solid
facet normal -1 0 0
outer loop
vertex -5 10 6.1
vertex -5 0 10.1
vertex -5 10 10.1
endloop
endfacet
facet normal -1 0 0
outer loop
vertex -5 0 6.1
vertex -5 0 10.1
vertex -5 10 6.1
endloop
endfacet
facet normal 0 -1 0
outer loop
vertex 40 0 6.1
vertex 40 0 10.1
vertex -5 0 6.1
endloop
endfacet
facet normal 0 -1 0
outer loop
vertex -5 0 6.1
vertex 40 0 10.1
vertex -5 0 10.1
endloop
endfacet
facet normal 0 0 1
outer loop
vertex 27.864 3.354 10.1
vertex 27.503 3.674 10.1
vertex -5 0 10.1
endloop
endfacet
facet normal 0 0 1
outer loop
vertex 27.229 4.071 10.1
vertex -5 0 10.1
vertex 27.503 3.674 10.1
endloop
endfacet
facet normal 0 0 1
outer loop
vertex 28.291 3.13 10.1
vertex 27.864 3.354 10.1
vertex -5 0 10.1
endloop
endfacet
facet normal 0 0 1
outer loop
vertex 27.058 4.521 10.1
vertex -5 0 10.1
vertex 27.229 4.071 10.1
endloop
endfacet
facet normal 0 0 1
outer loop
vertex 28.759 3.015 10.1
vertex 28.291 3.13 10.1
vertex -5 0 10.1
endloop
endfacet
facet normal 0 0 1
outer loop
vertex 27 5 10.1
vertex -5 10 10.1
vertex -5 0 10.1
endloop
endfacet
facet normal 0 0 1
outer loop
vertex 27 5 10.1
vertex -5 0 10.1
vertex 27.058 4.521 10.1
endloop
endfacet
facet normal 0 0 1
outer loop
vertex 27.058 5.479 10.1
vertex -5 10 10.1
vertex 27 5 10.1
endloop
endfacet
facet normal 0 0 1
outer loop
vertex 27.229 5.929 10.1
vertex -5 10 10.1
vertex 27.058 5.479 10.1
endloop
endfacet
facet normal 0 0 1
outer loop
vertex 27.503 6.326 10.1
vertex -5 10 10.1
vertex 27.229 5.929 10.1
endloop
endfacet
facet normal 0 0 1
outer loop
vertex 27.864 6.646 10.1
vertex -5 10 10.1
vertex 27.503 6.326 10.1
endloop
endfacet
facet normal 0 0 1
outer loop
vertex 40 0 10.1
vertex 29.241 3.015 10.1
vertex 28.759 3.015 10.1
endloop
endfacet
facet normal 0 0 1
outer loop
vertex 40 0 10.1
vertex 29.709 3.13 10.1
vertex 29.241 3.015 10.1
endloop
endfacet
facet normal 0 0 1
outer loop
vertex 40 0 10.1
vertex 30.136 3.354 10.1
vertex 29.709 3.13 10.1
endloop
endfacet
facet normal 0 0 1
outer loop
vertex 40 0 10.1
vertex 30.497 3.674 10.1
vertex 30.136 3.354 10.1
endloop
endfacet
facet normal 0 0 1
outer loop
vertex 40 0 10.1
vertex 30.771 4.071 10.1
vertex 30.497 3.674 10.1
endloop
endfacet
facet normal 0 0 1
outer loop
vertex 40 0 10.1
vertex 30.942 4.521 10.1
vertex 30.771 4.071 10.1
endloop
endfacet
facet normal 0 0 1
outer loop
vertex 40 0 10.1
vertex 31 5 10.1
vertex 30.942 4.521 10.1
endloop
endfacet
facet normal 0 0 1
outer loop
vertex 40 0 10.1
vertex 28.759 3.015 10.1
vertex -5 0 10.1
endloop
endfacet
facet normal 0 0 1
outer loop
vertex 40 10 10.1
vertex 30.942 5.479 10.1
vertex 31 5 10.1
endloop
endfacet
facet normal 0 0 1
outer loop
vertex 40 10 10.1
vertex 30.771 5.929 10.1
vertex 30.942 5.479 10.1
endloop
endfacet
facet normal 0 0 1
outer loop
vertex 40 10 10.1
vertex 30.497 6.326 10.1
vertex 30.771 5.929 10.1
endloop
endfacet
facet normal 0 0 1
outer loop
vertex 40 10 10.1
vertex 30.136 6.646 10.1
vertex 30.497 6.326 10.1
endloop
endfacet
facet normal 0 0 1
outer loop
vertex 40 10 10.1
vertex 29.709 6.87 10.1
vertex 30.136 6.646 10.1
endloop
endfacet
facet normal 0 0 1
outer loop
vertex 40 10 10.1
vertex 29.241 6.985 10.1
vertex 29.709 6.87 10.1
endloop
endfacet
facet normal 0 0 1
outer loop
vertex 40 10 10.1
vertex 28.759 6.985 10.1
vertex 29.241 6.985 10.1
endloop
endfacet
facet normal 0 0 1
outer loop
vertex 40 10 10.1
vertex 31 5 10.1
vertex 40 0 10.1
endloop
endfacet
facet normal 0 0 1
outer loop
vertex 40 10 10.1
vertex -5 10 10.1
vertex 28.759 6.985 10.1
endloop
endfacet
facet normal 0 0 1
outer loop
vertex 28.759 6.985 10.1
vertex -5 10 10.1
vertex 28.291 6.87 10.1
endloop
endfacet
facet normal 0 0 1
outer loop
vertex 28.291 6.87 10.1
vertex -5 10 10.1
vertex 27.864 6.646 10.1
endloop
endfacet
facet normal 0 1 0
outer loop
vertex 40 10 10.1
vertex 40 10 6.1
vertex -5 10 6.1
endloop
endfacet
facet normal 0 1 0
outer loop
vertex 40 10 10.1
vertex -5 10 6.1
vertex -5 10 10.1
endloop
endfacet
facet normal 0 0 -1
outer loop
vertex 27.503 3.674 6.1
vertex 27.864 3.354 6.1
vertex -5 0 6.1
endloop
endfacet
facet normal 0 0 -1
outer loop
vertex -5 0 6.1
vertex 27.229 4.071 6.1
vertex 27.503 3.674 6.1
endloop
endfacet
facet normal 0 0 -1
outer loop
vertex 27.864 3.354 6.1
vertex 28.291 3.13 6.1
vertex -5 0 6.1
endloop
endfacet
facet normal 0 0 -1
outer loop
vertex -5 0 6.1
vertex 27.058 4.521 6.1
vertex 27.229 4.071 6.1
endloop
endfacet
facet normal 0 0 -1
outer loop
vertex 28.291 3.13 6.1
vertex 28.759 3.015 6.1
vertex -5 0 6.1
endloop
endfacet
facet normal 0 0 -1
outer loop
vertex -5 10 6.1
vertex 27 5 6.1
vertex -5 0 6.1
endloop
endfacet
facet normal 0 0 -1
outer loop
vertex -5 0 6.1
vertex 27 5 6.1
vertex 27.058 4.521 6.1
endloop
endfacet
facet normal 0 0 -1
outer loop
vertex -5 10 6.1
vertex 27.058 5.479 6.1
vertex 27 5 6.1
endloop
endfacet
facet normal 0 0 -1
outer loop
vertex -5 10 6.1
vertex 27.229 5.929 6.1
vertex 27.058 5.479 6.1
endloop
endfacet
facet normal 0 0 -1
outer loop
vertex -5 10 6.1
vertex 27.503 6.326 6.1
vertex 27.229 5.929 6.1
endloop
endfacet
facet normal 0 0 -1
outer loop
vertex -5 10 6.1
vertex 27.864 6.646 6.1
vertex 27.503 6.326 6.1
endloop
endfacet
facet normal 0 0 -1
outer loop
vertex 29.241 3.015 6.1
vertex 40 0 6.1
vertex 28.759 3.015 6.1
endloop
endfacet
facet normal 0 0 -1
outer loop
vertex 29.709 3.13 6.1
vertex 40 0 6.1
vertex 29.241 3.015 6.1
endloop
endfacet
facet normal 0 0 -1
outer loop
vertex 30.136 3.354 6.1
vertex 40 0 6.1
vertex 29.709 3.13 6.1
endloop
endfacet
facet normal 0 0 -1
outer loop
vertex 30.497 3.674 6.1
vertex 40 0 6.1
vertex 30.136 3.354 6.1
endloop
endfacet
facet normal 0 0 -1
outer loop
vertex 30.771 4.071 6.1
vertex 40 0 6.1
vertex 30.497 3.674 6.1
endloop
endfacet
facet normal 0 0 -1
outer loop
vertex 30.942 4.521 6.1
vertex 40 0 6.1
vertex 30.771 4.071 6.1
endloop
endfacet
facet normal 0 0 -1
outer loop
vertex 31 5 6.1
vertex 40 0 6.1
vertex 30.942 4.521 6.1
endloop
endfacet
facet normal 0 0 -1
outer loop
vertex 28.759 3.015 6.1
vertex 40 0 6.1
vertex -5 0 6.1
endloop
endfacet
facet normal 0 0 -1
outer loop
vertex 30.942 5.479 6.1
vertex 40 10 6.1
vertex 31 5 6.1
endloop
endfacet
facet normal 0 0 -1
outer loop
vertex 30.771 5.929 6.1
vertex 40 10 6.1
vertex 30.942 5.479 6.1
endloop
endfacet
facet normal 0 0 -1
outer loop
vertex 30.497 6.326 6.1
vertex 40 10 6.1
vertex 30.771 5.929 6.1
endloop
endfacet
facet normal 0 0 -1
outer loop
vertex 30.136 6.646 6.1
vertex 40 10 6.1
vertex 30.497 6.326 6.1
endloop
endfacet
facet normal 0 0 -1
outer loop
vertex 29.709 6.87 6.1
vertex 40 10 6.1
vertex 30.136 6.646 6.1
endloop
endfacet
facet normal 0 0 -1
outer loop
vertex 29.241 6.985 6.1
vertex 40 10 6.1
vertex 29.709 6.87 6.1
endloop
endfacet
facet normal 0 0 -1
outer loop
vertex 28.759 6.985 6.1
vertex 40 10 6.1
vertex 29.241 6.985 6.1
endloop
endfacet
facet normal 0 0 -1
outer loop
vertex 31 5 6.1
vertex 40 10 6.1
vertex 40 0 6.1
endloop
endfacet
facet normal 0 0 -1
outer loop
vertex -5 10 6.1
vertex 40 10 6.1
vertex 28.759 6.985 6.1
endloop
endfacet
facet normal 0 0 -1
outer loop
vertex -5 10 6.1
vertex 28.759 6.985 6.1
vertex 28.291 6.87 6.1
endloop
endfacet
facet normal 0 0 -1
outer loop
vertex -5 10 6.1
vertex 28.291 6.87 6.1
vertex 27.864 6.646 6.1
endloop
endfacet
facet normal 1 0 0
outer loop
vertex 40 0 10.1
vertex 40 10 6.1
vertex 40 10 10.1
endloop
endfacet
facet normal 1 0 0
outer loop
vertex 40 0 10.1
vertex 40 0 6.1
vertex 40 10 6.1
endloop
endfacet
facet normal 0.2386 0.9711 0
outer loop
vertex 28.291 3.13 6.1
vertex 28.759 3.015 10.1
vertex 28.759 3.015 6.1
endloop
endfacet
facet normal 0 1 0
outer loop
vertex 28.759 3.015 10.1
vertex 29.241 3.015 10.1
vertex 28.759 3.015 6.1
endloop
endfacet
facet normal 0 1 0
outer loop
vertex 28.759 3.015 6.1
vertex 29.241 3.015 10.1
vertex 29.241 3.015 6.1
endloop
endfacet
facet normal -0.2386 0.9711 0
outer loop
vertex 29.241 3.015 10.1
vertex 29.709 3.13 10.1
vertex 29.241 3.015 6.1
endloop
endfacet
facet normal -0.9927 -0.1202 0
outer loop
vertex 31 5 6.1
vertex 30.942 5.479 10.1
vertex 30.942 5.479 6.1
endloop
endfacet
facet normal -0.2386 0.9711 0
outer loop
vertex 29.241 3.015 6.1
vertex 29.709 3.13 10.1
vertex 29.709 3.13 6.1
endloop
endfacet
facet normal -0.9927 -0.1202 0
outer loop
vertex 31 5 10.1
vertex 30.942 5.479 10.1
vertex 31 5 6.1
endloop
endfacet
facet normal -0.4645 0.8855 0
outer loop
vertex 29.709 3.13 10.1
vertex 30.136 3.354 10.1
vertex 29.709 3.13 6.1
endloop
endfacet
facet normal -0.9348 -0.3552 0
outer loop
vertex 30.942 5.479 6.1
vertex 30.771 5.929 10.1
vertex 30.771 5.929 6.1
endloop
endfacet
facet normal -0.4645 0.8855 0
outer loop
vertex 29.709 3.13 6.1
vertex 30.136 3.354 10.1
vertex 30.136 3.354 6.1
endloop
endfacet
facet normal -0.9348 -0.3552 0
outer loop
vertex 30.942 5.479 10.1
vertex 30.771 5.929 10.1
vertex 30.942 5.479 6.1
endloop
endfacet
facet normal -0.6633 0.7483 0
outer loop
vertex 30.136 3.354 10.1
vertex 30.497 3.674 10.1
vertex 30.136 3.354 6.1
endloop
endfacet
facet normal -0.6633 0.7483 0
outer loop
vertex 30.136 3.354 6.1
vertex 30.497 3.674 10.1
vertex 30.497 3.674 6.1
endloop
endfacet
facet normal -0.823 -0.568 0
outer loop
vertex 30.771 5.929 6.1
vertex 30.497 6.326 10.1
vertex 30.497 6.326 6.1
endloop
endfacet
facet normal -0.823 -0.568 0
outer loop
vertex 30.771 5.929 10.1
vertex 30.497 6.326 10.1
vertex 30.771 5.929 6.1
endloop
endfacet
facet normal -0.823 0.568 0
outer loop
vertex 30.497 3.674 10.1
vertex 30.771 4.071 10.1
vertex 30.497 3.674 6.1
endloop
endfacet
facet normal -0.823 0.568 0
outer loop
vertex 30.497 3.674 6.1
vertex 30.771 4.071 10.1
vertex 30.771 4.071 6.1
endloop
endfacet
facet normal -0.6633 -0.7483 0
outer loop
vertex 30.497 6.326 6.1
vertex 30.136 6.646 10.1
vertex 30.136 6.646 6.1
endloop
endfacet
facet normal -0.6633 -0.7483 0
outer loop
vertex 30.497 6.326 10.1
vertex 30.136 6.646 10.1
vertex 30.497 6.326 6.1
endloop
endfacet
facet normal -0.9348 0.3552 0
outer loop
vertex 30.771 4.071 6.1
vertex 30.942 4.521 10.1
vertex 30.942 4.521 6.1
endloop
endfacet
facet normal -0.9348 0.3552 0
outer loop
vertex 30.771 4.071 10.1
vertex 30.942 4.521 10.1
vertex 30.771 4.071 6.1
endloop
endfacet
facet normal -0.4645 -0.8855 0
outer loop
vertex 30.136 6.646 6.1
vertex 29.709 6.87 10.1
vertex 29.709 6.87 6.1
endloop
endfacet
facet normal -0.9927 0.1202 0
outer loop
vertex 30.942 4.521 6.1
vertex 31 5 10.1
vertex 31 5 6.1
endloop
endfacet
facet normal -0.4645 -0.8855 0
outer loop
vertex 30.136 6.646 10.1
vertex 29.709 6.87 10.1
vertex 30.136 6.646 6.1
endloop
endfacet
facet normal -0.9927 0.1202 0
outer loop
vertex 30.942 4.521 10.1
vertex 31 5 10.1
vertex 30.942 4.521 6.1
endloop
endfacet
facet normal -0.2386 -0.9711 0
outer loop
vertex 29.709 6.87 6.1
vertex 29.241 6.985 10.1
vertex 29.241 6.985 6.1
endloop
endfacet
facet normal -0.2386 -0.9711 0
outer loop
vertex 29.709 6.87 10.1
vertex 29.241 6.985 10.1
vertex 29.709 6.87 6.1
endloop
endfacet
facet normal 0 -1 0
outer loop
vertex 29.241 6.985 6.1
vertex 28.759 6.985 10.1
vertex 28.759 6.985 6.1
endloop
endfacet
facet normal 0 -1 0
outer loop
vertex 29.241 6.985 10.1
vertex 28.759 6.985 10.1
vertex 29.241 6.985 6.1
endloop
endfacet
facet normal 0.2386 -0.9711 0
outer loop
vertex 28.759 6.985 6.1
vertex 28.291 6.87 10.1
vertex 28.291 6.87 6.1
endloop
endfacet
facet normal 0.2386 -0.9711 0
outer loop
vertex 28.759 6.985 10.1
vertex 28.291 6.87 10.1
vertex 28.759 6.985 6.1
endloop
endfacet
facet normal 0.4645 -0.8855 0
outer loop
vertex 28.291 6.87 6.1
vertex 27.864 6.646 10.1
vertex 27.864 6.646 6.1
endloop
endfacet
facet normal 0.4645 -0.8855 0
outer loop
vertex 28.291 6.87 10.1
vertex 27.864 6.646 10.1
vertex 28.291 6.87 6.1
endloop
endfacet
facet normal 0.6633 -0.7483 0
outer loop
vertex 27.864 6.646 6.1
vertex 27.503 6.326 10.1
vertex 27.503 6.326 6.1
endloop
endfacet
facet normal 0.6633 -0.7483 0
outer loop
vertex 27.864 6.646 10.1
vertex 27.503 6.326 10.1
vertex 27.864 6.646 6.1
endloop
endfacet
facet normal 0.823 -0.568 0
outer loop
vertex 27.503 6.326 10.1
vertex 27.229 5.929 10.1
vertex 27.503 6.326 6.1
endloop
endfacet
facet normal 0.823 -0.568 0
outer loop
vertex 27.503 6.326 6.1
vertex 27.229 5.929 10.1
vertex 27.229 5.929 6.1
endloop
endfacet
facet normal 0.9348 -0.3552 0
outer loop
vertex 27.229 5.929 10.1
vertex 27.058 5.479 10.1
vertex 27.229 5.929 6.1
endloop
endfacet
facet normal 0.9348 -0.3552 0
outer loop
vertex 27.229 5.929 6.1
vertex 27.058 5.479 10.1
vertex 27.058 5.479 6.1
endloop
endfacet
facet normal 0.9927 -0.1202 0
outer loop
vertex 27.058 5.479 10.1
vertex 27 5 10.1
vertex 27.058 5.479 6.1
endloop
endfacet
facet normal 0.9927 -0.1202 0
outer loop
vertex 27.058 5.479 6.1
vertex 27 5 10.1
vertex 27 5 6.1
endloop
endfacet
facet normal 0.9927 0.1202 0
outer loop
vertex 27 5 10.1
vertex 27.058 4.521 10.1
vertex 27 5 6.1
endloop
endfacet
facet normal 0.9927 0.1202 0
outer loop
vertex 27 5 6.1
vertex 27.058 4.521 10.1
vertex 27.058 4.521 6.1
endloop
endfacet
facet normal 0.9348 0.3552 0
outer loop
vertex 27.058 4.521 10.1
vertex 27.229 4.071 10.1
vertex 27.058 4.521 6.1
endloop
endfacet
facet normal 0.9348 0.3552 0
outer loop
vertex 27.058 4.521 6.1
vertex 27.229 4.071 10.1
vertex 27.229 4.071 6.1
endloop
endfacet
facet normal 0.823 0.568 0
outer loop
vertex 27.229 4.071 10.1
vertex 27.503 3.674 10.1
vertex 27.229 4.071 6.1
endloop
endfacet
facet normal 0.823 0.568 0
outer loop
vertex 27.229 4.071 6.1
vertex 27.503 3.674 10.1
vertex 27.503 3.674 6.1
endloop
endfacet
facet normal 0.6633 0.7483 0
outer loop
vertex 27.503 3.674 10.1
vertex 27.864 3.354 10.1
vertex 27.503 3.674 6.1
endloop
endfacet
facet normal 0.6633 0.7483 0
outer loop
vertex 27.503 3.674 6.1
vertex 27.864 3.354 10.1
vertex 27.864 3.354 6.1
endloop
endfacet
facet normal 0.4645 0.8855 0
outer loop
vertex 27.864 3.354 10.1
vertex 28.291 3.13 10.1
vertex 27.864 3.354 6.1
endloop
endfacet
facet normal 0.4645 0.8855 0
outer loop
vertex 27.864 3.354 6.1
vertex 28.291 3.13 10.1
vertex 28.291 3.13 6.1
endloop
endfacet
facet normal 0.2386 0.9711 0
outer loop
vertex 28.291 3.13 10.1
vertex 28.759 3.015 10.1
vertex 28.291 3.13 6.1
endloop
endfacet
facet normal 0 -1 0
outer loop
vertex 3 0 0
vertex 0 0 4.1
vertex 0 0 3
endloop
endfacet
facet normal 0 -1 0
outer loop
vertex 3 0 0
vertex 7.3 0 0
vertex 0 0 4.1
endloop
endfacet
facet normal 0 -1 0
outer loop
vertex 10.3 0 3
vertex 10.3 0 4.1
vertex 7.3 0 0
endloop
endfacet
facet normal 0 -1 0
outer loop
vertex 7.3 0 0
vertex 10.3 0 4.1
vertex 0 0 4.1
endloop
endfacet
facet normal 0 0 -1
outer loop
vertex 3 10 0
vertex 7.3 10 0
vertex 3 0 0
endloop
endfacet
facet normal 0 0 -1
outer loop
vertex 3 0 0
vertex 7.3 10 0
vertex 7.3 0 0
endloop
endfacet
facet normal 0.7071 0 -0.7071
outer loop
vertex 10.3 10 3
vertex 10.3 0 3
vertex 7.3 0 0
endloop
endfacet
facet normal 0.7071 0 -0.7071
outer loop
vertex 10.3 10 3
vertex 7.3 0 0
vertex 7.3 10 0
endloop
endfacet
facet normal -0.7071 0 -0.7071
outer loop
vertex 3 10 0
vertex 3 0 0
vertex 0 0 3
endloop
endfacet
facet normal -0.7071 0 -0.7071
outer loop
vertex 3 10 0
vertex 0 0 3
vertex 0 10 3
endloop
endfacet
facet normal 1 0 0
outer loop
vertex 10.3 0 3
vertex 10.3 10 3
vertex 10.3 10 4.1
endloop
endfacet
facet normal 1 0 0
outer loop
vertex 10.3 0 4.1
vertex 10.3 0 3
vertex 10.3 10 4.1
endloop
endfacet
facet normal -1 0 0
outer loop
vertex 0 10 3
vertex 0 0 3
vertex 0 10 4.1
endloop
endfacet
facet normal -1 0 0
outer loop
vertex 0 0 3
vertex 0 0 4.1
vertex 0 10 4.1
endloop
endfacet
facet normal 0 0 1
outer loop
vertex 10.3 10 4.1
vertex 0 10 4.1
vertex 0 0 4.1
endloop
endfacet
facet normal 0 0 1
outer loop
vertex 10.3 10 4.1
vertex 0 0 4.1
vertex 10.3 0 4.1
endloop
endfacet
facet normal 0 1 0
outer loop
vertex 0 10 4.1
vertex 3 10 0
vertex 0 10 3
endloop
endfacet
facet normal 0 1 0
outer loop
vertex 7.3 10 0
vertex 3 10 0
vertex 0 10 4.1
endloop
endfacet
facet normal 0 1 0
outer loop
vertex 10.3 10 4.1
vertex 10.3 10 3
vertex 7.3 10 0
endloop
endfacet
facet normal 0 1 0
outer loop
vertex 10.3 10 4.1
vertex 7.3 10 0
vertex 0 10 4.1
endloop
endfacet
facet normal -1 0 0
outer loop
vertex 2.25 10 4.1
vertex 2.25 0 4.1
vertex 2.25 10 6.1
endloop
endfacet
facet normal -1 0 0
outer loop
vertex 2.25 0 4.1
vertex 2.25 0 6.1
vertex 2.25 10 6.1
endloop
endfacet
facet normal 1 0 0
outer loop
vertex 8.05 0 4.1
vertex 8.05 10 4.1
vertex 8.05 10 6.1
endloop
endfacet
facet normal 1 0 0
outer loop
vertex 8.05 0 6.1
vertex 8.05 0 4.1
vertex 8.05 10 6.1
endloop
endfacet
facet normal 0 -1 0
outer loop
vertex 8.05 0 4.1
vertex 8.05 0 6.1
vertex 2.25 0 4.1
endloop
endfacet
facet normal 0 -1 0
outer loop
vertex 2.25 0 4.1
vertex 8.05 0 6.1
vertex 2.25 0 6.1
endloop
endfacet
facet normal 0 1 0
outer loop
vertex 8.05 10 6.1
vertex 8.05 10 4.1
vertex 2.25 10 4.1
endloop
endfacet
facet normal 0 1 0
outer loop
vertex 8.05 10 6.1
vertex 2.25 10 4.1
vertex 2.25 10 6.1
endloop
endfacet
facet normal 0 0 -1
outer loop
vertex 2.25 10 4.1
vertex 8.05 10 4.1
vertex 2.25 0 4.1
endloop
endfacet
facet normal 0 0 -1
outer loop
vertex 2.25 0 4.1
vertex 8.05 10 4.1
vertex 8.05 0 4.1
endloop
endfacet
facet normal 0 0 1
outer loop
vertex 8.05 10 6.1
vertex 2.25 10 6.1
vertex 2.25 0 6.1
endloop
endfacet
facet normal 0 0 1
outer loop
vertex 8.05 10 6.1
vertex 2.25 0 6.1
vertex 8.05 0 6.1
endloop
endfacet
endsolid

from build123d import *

# Parameters (mm, degrees)
BOX001_W        = 5.8
BOX001_H        = 10
BOX001_DEPTH    = 2
BOX_W           = 10.3
BOX_H           = 10
BOX_DEPTH       = 4.1
CHAMFER_SIZE    = 3
CHAMFER001_SIZE = 3
CYLINDER_R      = 2
CYLINDER_DEPTH  = 10
BOX002_W        = 45
BOX002_H        = 10
BOX002_DEPTH    = 4


with BuildPart() as cube001:
    # Box001 → Box001 (new body)
    with BuildSketch(Plane(origin=(2.25, 0, 4.1), x_dir=(1, 0, 0), z_dir=(0, 0, 1))):
        with Locations((2.9, 5)):
            Rectangle(BOX001_W, BOX001_H)
    extrude(amount=BOX001_DEPTH)


with BuildPart() as chamfer001:
    # Box → Box (new body)
    with BuildSketch(Plane.XY):
        with Locations((5.15, 5)):
            Rectangle(BOX_W, BOX_H)
    extrude(amount=BOX_DEPTH)

    # Chamfer
    chamfer_edges = [chamfer001.edges().sort_by_distance(p)[0] for p in [
        (0, 5, 0),
    ]]
    chamfer(chamfer_edges, length=CHAMFER_SIZE)

    # Chamfer001
    chamfer001_edges = [chamfer001.edges().sort_by_distance(p)[0] for p in [
        (10.3, 5, 0),
    ]]
    chamfer(chamfer001_edges, length=CHAMFER001_SIZE)


with BuildPart() as cylinder:
    # Cylinder → Cylinder (new body)
    with BuildSketch(Plane(origin=(29, 5, 1), x_dir=(1, 0, 0), z_dir=(0, 0, 1))):
        Circle(CYLINDER_R)
    extrude(amount=CYLINDER_DEPTH)


with BuildPart() as cut:
    # Box002 → Box002 (new body)
    with BuildSketch(Plane(origin=(-5, 0, 6.1), x_dir=(1, 0, 0), z_dir=(0, 0, 1))):
        with Locations((22.5, 5)):
            Rectangle(BOX002_W, BOX002_H)
    extrude(amount=BOX002_DEPTH)

    # Cut: cut Cylinder
    add(cylinder.part, mode=Mode.SUBTRACT)


solid = Compound([cube001.part, chamfer001.part, cut.part])
